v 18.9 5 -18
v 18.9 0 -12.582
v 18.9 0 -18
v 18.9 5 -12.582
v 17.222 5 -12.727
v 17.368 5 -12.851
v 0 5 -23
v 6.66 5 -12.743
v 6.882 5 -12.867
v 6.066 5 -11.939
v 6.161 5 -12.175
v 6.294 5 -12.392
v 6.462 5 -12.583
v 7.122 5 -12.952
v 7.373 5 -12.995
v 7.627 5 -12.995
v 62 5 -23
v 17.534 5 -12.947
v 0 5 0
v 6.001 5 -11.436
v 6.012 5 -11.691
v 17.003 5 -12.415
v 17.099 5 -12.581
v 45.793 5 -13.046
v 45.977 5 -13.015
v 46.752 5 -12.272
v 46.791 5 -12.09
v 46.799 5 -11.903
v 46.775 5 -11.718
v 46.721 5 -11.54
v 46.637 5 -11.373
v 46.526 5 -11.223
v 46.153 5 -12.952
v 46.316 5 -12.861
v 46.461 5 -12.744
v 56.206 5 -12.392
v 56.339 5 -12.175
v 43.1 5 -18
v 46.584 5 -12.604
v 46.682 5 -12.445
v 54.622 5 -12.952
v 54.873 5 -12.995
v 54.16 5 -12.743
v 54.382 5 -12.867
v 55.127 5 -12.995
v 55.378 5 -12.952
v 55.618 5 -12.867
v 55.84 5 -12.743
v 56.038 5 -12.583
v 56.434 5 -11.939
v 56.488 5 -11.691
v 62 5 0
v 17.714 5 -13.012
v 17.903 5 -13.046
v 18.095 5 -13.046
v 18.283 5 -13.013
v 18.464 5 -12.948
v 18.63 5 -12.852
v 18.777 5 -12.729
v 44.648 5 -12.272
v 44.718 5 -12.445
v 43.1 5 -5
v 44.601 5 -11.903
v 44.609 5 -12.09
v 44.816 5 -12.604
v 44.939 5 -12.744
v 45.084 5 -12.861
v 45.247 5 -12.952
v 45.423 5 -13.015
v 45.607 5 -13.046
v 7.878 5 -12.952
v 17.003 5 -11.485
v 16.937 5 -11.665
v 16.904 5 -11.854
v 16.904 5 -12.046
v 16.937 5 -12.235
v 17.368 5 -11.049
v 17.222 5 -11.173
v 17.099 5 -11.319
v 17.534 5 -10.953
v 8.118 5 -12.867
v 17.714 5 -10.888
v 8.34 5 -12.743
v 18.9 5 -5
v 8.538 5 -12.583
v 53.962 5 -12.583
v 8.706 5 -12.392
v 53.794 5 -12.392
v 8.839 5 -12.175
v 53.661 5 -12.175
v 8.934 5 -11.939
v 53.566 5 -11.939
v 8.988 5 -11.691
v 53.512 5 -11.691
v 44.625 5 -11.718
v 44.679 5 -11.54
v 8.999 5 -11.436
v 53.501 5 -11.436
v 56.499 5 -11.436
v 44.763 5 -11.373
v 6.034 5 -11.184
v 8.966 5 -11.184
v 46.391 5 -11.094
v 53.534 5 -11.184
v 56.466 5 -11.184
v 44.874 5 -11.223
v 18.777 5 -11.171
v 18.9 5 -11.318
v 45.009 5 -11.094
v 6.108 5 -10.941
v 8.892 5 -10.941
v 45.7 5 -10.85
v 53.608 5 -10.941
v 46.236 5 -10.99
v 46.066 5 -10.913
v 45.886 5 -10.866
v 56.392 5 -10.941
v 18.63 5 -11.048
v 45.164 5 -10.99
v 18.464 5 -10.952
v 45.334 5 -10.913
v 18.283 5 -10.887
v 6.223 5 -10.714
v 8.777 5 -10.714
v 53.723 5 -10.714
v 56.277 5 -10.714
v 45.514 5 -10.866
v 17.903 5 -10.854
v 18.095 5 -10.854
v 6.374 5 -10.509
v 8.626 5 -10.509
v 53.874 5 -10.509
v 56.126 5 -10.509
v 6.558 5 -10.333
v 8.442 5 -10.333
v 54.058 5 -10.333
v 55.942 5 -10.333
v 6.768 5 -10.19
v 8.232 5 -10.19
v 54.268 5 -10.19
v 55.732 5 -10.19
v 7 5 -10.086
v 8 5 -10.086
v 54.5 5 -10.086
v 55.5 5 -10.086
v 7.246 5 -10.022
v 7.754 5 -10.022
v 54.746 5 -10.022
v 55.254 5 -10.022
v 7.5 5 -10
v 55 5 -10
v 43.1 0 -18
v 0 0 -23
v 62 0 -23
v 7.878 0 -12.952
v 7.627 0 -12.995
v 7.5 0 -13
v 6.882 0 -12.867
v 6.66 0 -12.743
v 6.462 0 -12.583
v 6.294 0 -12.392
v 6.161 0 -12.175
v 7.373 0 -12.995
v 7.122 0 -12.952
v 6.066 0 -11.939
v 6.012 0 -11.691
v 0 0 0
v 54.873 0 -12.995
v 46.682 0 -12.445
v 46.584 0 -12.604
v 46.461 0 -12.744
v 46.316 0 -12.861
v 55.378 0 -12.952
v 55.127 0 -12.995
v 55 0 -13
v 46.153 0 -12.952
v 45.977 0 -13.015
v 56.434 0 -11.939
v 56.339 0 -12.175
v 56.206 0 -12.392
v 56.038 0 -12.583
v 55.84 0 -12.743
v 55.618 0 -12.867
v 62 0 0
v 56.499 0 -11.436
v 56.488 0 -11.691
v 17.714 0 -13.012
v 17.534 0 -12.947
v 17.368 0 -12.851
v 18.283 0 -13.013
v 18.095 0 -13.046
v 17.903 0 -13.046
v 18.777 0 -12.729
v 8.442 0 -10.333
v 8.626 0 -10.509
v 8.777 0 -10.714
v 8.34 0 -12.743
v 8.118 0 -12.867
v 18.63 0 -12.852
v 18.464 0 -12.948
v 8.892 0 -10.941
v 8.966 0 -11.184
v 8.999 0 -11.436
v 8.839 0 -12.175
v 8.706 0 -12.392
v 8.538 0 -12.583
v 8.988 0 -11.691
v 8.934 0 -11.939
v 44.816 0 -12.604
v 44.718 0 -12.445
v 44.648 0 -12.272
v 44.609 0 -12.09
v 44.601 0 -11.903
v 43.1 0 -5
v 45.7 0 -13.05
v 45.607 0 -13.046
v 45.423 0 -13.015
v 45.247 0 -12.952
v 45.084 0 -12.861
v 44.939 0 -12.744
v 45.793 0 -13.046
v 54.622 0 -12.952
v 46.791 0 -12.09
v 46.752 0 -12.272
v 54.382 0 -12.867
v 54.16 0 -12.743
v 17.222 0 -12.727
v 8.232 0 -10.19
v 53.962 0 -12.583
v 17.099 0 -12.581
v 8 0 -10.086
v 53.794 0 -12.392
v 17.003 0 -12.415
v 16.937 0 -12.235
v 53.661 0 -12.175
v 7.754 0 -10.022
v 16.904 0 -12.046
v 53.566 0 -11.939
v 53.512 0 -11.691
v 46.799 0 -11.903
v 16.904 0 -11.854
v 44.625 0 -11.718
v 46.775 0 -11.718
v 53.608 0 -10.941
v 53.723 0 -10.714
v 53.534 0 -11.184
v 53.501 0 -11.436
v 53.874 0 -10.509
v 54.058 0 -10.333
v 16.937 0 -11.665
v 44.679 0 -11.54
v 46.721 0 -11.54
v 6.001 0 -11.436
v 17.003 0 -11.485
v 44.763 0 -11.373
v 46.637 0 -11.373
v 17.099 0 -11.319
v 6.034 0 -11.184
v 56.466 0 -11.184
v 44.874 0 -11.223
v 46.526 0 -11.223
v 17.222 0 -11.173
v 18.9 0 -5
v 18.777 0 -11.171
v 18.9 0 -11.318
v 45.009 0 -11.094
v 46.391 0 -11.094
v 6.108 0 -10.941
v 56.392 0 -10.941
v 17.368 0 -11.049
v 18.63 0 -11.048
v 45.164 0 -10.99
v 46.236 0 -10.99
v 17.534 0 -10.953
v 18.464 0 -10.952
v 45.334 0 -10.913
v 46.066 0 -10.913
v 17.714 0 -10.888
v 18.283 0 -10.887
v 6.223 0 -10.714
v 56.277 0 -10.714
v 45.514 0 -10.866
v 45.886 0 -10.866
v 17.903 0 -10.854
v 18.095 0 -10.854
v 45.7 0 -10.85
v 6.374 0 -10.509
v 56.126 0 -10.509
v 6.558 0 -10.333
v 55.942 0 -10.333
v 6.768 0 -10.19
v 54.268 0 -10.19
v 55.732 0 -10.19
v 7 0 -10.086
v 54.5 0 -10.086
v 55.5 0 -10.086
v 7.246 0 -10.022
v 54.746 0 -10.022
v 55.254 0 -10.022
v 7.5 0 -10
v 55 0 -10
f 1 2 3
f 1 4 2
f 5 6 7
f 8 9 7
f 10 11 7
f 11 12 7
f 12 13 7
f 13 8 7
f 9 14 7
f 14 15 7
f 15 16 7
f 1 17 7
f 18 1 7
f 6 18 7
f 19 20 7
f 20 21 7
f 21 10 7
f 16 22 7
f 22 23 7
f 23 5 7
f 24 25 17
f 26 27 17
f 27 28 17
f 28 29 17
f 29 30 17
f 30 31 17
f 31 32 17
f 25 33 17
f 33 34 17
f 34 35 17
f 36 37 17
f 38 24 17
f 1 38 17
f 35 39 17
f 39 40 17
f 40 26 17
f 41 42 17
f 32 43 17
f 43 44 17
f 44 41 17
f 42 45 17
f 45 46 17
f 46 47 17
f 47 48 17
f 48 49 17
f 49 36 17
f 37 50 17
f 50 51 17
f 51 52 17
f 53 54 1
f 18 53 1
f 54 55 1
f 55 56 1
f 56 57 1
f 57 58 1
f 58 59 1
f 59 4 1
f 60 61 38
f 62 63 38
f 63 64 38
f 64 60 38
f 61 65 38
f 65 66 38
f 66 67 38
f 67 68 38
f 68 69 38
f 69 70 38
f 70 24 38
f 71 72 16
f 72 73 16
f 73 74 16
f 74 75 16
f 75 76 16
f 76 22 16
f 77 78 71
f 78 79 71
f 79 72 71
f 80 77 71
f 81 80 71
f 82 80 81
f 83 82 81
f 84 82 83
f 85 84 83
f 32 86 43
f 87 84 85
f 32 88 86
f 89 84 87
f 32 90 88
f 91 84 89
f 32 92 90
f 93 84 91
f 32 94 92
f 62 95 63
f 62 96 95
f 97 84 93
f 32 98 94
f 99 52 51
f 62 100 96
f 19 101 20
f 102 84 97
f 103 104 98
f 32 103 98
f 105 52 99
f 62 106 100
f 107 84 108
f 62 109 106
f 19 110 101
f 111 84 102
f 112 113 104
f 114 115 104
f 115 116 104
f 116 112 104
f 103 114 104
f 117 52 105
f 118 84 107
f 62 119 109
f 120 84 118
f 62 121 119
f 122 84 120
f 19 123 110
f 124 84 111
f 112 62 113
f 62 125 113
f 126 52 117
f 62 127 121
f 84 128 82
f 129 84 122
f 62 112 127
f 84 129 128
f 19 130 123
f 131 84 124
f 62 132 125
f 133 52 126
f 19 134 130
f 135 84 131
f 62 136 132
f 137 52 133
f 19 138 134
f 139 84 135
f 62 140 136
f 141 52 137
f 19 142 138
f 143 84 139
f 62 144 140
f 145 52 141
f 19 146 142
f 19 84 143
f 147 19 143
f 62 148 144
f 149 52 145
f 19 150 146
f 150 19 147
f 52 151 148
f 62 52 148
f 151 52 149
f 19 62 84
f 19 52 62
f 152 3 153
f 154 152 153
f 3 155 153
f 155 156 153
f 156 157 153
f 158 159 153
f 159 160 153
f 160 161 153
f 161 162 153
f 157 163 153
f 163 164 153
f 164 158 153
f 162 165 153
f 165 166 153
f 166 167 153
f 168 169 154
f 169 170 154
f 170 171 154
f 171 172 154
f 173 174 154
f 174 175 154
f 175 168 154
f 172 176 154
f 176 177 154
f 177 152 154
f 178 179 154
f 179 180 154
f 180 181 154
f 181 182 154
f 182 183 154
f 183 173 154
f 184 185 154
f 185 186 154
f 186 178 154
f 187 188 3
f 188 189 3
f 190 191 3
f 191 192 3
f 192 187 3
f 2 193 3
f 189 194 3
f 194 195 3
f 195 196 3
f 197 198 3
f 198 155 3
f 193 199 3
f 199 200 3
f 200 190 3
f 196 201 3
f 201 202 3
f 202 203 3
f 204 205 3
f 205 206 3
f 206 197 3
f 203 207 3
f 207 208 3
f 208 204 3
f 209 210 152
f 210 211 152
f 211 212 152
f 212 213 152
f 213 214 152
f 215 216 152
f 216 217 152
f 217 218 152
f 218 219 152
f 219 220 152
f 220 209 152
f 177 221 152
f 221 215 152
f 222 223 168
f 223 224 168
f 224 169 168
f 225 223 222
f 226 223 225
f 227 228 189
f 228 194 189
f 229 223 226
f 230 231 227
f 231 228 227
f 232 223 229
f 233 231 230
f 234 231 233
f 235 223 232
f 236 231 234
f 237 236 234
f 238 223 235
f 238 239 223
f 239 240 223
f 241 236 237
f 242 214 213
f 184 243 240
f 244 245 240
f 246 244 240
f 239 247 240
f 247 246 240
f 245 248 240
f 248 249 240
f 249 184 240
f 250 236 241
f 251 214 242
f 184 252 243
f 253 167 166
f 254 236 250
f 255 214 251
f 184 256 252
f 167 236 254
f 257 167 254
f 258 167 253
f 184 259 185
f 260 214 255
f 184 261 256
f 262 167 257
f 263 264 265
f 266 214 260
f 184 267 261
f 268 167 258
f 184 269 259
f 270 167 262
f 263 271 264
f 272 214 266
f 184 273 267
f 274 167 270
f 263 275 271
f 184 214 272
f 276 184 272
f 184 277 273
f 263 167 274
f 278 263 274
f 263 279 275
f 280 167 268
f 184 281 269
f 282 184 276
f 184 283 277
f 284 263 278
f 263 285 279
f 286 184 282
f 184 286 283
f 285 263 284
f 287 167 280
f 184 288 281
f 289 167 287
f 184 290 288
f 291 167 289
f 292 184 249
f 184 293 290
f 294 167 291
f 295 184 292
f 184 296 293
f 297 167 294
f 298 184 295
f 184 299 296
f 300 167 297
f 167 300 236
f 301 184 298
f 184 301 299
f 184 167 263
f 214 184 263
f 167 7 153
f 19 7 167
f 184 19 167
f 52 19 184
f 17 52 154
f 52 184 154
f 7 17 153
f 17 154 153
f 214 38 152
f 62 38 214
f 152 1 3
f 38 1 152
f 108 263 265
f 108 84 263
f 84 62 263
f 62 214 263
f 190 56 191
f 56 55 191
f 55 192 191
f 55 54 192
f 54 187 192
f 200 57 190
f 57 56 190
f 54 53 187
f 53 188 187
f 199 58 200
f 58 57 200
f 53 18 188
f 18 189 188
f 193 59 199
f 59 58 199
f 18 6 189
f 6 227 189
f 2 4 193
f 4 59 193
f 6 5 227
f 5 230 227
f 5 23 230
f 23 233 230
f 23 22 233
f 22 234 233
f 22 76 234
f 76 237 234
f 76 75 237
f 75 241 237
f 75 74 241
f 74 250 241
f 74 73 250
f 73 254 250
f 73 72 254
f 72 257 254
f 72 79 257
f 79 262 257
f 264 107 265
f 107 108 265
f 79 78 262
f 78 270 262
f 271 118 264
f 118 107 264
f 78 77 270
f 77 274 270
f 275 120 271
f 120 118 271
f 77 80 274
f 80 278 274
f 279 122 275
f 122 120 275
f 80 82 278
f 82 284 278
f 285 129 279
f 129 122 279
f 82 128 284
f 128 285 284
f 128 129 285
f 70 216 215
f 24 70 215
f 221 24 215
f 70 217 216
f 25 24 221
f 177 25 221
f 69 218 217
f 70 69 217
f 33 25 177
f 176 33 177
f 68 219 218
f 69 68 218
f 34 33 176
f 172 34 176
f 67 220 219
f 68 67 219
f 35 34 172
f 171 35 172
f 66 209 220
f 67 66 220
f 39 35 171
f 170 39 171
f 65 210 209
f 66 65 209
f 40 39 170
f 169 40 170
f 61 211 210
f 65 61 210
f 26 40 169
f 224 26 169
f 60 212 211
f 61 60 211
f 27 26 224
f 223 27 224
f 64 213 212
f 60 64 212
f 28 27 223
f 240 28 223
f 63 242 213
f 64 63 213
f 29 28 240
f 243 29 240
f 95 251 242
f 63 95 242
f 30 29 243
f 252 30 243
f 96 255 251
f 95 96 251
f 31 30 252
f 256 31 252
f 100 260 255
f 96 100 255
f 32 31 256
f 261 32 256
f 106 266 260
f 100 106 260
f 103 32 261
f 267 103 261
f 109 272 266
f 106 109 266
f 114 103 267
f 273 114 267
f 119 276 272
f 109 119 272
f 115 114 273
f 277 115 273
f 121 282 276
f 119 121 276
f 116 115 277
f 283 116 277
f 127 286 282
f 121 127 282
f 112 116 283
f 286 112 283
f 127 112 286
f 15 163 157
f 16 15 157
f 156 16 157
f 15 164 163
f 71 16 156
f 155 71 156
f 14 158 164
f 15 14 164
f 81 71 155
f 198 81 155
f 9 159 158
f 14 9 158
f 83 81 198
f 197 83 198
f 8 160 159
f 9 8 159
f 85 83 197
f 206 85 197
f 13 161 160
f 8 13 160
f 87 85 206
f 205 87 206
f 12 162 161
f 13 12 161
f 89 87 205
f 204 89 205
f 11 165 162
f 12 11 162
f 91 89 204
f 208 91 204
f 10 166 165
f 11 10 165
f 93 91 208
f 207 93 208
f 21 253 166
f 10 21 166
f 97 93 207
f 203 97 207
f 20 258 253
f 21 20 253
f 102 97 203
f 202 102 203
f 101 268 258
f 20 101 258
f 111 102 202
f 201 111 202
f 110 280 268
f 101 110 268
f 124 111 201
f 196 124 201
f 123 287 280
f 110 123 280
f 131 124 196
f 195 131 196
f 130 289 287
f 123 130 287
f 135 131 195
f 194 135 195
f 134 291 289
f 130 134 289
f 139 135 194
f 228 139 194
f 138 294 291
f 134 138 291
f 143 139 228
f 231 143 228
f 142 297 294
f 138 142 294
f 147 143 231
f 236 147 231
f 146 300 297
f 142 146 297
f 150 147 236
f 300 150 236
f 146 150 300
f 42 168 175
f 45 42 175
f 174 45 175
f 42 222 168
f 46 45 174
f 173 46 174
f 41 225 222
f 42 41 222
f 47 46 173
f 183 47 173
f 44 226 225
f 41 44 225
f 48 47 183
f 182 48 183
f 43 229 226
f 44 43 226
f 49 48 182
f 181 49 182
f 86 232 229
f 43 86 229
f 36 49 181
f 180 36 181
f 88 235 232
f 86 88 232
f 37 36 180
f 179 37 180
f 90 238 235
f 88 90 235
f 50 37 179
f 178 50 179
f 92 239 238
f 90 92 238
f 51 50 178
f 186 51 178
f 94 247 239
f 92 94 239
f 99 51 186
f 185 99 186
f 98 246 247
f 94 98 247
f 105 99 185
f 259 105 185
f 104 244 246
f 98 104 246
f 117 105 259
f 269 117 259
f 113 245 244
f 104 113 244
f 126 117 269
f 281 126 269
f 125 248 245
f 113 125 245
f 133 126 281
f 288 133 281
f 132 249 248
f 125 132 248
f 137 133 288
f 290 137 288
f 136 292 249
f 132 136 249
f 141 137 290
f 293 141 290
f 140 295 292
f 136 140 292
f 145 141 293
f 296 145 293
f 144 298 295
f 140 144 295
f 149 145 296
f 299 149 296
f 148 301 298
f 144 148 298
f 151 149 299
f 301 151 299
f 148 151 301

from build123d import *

# Parameters (mm, degrees)
SKETCH4_W           = 62
SKETCH4_H           = 23
SKETCH4_W_2         = 24.2
SKETCH4_H_2         = 13
BOSS_EXTRUDE2_DEPTH = 5
SKETCH7_R           = 1.1
SKETCH7_R_2         = 1.5
CUT_EXTRUDE3_DEPTH  = 10


with BuildPart() as part:
    # Sketch4 → Boss-Extrude2 (new body)
    with BuildSketch(Plane(origin=(0, 0, 0), x_dir=(1, 0, 0), z_dir=(0, 1, 0))):
        with Locations((31, 11.5)):
            Rectangle(SKETCH4_W, SKETCH4_H)
        with Locations((31, 11.5)):
            Rectangle(SKETCH4_W_2, SKETCH4_H_2, mode=Mode.SUBTRACT)
    extrude(amount=BOSS_EXTRUDE2_DEPTH)

    # Sketch7 → Cut-Extrude3 (cut)
    with BuildSketch(Plane(origin=(0, 5, 0), x_dir=(1, 0, 0), z_dir=(0, 1, 0))):
        with Locations(Location((45.7, 11.95, 0), (0, 0, 270))):
            Circle(SKETCH7_R)
        with Locations((18, 11.95)):
            Circle(SKETCH7_R)
        with Locations(Location((7.5, 11.5, 0), (0, 0, 270))):
            Circle(SKETCH7_R_2)
        with Locations(Location((55, 11.5, 0), (0, 0, 270))):
            Circle(SKETCH7_R_2)
    extrude(amount=-CUT_EXTRUDE3_DEPTH, mode=Mode.SUBTRACT)


solid = part.part
